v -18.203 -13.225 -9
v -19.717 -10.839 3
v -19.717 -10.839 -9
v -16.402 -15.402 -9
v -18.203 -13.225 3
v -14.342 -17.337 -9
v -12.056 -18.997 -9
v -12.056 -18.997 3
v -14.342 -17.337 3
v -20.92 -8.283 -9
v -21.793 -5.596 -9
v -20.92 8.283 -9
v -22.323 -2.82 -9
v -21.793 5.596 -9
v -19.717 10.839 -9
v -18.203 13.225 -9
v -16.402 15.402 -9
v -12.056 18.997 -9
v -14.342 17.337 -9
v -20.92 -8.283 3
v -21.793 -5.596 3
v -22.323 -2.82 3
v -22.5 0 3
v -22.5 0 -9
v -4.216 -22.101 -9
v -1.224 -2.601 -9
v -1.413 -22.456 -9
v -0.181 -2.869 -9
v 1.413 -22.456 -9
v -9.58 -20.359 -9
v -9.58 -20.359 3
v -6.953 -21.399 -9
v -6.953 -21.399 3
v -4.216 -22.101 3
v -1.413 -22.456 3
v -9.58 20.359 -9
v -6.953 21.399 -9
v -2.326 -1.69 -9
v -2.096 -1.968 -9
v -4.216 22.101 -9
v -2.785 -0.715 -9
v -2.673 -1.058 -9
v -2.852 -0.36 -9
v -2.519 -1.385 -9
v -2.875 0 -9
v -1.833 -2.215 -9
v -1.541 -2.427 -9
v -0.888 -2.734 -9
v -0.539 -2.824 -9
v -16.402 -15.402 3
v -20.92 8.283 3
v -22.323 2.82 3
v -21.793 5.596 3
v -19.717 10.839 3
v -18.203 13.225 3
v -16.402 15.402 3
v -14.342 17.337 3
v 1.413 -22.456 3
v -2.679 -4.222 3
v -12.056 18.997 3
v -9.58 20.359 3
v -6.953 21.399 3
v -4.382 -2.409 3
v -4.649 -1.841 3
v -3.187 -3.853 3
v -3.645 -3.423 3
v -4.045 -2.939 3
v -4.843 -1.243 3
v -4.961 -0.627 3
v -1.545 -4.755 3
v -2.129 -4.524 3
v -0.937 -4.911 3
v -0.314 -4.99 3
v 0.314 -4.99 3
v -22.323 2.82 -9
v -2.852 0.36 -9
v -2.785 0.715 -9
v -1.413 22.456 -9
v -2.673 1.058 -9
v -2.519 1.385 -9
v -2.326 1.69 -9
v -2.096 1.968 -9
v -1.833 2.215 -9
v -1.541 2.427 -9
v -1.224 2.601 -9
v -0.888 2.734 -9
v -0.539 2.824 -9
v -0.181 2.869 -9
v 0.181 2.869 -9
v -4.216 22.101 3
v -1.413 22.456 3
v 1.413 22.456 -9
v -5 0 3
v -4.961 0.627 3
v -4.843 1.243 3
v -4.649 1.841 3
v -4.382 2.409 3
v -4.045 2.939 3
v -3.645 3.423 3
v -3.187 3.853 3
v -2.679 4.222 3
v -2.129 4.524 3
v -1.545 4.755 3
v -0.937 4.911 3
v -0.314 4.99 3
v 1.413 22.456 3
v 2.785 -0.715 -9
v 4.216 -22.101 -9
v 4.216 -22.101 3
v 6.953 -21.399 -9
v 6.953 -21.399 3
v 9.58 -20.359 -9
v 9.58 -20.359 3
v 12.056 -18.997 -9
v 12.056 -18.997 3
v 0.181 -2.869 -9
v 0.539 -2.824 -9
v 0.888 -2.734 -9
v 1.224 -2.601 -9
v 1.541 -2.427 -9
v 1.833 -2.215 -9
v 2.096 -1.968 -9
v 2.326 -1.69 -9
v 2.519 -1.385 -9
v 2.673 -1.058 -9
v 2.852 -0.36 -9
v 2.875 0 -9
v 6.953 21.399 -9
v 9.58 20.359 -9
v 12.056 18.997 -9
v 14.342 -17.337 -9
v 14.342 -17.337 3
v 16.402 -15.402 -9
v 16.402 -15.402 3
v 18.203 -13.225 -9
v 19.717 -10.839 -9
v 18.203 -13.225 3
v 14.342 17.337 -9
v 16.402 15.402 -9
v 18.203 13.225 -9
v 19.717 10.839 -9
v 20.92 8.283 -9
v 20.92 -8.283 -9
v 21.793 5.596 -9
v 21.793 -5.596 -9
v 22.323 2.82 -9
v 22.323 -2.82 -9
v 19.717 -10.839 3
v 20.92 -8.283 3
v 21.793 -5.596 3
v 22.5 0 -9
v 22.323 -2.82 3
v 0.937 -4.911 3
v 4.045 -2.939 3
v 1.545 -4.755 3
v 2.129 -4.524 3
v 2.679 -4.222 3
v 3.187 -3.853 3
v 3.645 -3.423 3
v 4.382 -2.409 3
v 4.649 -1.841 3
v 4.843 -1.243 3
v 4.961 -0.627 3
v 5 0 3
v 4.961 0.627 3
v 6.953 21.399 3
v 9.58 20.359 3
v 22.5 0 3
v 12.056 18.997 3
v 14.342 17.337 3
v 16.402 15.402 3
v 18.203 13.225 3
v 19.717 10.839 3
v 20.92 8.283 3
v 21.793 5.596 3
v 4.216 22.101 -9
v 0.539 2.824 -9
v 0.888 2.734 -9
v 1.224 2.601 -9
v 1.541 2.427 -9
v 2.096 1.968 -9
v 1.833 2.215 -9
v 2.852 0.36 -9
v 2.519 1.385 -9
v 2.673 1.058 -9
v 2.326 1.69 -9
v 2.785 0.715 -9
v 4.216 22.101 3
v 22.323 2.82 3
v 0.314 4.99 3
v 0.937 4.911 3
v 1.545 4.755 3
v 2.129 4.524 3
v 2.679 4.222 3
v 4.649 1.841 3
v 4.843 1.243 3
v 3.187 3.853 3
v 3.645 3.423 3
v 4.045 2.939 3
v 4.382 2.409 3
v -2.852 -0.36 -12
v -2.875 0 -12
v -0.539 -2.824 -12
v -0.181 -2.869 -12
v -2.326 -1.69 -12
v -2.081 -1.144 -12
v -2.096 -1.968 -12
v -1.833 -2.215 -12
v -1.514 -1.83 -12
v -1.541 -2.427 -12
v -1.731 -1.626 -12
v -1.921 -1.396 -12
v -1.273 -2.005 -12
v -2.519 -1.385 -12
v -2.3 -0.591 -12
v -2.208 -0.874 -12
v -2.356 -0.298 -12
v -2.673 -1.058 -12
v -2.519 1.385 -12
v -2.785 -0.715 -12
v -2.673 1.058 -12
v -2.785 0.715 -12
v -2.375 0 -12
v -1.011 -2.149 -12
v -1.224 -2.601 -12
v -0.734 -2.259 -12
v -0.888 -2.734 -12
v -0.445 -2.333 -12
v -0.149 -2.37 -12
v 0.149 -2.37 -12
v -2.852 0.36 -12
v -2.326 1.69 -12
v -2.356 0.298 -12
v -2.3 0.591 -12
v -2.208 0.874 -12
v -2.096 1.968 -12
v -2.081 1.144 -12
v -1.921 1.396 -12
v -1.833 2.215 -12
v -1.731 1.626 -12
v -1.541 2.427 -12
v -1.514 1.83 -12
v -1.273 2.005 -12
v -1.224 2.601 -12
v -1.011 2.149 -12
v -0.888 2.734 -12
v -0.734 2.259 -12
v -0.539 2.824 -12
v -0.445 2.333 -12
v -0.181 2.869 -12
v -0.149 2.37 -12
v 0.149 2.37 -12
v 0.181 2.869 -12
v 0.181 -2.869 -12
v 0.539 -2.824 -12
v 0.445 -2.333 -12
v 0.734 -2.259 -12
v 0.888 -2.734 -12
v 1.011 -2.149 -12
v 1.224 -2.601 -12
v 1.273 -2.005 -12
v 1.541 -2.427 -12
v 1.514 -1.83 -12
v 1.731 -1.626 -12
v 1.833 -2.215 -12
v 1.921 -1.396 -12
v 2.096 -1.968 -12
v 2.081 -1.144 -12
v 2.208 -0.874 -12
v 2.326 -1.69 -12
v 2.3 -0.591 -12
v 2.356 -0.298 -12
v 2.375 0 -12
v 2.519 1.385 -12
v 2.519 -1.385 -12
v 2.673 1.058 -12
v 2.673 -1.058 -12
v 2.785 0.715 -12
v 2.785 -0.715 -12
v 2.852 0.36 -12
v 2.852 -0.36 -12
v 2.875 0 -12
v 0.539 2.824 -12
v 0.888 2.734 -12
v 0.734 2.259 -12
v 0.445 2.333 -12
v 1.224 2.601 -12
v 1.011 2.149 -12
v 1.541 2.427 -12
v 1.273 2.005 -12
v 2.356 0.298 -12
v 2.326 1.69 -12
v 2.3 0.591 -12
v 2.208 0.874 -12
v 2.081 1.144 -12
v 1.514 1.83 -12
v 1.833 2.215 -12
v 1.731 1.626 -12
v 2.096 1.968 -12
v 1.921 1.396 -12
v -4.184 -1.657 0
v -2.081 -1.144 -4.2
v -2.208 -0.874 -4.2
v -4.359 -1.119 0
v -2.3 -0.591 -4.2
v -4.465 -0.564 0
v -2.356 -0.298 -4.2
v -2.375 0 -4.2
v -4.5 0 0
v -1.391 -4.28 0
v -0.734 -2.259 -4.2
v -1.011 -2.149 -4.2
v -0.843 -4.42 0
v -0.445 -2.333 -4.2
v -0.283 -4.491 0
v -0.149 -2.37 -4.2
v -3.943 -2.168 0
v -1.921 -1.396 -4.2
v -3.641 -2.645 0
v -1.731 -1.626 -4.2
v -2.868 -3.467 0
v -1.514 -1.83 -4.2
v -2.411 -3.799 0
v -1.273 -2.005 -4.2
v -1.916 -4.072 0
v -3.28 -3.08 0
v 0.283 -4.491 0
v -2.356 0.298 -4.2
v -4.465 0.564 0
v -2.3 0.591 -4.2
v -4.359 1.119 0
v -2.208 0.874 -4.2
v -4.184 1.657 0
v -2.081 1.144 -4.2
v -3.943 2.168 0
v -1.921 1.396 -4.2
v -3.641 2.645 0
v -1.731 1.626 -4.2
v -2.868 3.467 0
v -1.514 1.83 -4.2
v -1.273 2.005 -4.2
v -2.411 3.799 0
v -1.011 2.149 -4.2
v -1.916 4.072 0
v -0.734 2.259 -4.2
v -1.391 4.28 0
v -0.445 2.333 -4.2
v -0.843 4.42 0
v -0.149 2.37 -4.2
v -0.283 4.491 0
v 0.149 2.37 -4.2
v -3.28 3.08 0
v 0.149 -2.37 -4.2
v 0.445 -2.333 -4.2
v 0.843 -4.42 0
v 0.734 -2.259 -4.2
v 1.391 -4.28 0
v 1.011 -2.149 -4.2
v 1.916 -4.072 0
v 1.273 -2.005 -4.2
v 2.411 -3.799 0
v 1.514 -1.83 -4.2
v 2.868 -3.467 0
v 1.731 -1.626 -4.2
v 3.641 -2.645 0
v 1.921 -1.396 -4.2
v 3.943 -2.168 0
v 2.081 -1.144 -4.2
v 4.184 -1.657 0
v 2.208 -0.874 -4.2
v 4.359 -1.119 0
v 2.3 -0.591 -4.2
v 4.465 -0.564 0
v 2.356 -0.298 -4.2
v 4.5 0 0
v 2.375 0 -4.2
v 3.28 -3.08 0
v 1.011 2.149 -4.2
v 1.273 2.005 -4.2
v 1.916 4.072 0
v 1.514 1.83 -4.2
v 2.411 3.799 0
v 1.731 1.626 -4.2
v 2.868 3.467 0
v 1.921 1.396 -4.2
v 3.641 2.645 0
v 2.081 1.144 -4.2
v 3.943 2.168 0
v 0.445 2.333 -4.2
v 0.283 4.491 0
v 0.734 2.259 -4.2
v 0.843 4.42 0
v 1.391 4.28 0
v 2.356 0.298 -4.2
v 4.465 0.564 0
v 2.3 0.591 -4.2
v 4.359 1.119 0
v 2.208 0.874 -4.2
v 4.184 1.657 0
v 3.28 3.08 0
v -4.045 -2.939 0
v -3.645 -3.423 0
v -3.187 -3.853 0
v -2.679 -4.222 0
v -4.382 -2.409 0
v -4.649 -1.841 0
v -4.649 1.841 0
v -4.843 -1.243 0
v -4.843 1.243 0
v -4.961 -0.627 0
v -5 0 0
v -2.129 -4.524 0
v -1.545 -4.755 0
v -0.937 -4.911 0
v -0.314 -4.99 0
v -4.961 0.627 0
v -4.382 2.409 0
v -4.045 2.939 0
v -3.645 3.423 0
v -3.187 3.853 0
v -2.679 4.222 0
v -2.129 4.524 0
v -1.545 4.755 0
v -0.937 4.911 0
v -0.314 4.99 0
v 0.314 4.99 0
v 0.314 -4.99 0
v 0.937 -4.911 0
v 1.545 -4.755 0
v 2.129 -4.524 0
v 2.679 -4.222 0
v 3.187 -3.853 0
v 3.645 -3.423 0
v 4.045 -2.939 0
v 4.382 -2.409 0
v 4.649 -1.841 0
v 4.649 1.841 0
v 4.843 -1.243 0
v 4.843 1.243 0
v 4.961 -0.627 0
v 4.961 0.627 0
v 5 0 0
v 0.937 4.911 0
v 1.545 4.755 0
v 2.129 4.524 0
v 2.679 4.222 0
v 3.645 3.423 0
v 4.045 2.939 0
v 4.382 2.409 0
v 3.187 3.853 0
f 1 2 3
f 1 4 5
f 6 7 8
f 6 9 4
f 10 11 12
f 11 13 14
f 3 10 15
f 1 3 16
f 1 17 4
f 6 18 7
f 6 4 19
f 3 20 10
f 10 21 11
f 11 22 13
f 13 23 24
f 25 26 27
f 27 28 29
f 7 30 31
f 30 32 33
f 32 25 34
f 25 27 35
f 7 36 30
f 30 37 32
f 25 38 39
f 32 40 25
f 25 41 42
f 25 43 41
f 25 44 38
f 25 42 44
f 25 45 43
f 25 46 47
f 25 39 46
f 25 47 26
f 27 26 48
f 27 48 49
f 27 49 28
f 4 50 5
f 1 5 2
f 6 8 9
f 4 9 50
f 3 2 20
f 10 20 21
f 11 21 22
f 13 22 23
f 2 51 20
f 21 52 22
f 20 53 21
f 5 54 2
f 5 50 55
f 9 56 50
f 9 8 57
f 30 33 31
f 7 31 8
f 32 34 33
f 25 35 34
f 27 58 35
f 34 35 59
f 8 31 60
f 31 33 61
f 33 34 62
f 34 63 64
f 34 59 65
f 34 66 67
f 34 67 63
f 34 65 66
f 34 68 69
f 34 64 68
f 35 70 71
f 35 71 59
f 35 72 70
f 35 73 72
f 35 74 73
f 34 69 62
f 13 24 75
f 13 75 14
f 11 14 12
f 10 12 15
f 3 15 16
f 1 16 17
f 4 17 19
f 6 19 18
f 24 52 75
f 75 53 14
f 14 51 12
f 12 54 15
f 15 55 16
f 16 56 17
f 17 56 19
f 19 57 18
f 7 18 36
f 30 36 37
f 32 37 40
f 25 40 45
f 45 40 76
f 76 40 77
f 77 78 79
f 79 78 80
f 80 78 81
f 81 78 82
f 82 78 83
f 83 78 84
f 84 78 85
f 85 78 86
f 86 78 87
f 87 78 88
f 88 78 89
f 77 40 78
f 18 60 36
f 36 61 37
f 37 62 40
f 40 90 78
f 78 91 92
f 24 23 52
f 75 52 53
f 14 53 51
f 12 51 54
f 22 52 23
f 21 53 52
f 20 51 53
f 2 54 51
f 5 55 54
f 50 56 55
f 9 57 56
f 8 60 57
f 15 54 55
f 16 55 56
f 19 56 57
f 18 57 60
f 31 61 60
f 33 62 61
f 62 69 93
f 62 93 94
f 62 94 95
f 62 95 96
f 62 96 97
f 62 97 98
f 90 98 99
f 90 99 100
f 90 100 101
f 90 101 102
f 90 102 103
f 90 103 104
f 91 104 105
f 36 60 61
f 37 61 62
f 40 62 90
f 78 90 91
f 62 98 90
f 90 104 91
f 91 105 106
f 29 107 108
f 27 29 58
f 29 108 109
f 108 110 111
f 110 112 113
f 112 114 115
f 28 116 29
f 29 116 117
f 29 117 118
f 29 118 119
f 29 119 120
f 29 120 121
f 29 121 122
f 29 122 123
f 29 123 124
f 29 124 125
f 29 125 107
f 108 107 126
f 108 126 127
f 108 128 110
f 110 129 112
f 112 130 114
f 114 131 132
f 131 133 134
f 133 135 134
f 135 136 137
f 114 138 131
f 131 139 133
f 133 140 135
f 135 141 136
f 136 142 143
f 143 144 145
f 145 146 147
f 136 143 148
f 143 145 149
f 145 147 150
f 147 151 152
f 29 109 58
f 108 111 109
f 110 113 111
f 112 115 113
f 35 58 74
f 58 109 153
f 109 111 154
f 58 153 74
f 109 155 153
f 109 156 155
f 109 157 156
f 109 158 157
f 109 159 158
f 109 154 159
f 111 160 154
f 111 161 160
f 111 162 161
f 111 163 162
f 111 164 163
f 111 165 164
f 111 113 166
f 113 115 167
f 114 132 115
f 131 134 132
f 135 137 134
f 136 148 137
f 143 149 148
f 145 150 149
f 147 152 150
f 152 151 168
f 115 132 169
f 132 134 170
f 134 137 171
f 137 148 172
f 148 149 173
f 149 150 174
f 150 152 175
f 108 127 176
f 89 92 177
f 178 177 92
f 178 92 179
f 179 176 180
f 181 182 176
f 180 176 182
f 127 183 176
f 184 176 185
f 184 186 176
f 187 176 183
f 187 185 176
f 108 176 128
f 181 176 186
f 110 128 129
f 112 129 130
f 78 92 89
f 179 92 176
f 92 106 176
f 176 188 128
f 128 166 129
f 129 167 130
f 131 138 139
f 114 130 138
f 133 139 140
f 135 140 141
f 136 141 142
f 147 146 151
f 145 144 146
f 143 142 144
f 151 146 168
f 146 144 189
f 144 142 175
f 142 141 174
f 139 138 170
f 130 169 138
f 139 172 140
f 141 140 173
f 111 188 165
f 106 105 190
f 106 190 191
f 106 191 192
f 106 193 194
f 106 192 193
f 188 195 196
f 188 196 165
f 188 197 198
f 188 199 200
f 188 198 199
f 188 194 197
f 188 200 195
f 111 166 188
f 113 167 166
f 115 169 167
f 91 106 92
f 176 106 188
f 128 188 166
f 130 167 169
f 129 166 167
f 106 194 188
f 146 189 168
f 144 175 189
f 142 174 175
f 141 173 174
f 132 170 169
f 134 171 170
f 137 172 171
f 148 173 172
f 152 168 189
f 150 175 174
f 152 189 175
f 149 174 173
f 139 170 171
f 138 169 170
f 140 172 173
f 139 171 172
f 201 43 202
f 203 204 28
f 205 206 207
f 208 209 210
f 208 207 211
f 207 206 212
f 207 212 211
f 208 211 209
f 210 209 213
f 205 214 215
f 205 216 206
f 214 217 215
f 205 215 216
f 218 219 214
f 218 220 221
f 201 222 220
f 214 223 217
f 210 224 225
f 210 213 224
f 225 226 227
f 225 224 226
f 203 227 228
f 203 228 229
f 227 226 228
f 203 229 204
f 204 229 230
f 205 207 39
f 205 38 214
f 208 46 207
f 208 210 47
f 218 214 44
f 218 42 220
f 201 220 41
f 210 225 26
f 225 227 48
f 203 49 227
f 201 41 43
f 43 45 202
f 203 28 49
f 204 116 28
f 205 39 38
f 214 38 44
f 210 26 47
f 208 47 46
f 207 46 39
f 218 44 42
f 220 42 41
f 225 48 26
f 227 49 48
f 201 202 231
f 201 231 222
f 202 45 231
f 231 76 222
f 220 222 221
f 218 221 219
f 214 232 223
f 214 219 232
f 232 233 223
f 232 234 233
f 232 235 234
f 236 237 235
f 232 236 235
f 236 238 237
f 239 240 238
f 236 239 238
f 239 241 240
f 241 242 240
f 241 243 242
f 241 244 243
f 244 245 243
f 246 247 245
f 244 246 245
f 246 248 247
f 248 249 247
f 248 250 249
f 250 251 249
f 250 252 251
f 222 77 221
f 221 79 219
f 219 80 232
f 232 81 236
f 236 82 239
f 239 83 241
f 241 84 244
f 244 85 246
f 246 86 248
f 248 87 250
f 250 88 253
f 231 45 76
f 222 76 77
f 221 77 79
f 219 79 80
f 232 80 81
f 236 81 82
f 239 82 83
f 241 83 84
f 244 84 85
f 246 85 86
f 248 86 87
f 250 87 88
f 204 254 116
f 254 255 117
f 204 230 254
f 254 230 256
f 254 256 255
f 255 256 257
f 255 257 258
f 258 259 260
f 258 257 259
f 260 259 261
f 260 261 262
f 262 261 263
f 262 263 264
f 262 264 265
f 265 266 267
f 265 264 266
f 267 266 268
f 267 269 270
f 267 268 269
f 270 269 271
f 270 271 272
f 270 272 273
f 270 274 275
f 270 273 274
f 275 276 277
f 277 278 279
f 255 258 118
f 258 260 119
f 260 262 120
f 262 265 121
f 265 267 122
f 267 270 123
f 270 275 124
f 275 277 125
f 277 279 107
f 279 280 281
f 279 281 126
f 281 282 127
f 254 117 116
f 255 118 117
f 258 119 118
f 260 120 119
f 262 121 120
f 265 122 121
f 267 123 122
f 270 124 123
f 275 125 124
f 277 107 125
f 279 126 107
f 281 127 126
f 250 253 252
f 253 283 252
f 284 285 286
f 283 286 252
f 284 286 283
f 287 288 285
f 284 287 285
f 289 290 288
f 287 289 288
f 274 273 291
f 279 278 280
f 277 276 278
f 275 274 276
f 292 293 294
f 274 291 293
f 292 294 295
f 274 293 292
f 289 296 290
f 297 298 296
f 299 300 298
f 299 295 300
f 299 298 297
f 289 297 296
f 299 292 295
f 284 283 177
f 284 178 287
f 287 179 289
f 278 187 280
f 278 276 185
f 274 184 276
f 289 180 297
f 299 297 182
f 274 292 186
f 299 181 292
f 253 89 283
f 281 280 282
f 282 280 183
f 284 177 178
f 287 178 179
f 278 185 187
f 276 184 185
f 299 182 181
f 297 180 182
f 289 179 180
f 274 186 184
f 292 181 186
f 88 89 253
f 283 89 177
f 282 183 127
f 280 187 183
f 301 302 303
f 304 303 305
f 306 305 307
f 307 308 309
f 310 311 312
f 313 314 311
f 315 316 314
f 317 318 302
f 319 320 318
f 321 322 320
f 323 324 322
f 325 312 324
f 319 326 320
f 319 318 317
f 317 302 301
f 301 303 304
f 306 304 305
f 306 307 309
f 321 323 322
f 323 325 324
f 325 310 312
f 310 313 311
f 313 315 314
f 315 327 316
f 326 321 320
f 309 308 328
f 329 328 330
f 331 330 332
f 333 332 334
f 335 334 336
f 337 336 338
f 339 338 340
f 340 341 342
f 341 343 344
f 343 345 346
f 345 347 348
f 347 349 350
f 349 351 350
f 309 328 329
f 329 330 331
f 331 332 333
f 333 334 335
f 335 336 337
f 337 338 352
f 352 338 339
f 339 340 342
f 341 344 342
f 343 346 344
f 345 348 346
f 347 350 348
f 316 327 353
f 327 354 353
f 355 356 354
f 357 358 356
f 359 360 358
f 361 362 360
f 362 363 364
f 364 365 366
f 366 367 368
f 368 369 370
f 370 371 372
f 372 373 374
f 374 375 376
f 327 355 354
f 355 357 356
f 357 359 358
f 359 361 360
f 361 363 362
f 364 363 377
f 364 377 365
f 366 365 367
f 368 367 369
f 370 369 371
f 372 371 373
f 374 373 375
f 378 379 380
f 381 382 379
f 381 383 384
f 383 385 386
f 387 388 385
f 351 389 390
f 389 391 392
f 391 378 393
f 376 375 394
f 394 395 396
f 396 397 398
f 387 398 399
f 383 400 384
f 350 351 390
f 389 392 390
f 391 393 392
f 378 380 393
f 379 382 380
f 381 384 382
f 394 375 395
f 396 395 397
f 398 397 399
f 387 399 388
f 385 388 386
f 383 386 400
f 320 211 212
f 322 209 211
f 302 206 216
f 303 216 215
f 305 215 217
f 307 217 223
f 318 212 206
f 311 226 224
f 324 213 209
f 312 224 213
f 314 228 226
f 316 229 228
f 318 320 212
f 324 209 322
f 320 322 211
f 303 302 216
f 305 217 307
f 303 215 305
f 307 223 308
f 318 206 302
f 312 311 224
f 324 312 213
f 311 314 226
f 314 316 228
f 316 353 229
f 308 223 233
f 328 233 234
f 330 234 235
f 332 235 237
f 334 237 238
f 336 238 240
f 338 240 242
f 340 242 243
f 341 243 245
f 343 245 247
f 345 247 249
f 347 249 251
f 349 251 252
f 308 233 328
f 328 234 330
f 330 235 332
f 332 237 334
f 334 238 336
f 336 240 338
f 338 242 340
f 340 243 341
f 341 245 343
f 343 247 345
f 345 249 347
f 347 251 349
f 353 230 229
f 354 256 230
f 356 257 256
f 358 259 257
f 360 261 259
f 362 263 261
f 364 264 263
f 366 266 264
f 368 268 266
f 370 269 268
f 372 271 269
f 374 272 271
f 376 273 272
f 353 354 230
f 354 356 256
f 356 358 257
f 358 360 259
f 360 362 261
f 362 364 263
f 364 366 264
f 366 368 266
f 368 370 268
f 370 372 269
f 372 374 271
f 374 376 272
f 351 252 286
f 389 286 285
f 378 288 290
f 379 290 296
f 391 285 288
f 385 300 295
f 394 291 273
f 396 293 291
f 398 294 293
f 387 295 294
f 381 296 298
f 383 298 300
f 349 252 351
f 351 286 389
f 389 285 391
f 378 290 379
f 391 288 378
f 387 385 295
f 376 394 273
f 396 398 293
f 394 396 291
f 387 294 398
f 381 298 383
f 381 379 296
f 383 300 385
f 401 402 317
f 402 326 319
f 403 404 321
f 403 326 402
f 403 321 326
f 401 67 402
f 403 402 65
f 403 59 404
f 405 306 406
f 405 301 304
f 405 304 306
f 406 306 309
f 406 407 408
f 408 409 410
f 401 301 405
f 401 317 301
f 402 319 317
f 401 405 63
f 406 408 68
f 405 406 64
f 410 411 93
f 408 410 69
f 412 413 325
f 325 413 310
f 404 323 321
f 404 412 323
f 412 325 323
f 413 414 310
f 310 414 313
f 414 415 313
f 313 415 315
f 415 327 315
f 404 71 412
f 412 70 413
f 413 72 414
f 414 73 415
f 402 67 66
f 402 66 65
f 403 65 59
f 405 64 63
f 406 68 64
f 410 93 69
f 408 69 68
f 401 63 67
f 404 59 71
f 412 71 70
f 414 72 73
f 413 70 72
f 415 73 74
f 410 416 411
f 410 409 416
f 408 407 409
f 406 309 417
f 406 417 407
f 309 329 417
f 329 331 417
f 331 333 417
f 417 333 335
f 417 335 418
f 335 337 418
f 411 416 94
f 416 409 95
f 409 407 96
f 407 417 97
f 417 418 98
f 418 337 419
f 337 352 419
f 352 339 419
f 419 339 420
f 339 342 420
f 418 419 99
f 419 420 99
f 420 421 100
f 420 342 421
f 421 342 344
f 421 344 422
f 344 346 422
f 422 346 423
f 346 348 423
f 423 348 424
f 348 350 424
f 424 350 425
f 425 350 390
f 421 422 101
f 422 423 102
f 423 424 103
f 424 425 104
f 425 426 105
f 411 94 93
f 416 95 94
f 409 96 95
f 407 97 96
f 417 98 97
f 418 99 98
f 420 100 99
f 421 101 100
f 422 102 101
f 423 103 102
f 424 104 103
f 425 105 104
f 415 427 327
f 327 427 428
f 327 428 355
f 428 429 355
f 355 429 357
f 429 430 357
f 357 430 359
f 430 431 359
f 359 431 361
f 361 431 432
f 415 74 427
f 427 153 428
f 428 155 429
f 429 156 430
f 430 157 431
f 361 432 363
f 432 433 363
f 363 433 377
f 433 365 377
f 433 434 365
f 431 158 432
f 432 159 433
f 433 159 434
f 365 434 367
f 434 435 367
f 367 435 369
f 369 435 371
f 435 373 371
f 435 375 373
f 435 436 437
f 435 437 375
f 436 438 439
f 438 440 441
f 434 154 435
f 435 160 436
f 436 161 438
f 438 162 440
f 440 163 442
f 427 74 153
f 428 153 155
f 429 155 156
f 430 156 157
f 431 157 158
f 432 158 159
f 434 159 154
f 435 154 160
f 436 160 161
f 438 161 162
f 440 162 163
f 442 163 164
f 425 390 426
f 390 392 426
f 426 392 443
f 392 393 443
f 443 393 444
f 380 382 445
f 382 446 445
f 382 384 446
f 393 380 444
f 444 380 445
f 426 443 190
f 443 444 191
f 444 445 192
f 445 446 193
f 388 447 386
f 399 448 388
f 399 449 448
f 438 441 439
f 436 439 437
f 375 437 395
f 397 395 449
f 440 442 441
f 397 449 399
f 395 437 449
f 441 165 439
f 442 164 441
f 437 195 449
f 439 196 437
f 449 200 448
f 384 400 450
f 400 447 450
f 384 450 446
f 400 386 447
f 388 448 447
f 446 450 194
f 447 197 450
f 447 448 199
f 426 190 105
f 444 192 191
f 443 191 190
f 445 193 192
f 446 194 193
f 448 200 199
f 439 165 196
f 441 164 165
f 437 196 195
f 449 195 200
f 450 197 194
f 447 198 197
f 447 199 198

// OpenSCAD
$fn = 50;

difference() {
	union() {
		translate(v = [0, 0, -9.0]) {
			cylinder(h = 12, r = 22.5);
		}
		#translate(v = [0, 0, -12.0]) {
			cylinder(h = 12, r = 2.875);
		}
	}
	union() {
		translate(v = [0, 0, 0]) {
			rotate(a = [0, 0, 0]) {
				difference() {
					union() {
						translate(v = [0, 0, -12.0]) {
							cylinder(h = 12, r = 2.25);
						}
						translate(v = [0, 0, -4.2]) {
							cylinder(h = 4.2, r1 = 2.375, r2 = 4.5);
						}
						translate(v = [0, 0, -12.0]) {
							cylinder(h = 12, r = 2.375);
						}
						translate(v = [0, 0, -12.0]) {
							cylinder(h = 12, r = 2.25);
						}
					}
					union();
				}
			}
		}
		#cylinder(h = 3, r = 5.0);
	}
}
